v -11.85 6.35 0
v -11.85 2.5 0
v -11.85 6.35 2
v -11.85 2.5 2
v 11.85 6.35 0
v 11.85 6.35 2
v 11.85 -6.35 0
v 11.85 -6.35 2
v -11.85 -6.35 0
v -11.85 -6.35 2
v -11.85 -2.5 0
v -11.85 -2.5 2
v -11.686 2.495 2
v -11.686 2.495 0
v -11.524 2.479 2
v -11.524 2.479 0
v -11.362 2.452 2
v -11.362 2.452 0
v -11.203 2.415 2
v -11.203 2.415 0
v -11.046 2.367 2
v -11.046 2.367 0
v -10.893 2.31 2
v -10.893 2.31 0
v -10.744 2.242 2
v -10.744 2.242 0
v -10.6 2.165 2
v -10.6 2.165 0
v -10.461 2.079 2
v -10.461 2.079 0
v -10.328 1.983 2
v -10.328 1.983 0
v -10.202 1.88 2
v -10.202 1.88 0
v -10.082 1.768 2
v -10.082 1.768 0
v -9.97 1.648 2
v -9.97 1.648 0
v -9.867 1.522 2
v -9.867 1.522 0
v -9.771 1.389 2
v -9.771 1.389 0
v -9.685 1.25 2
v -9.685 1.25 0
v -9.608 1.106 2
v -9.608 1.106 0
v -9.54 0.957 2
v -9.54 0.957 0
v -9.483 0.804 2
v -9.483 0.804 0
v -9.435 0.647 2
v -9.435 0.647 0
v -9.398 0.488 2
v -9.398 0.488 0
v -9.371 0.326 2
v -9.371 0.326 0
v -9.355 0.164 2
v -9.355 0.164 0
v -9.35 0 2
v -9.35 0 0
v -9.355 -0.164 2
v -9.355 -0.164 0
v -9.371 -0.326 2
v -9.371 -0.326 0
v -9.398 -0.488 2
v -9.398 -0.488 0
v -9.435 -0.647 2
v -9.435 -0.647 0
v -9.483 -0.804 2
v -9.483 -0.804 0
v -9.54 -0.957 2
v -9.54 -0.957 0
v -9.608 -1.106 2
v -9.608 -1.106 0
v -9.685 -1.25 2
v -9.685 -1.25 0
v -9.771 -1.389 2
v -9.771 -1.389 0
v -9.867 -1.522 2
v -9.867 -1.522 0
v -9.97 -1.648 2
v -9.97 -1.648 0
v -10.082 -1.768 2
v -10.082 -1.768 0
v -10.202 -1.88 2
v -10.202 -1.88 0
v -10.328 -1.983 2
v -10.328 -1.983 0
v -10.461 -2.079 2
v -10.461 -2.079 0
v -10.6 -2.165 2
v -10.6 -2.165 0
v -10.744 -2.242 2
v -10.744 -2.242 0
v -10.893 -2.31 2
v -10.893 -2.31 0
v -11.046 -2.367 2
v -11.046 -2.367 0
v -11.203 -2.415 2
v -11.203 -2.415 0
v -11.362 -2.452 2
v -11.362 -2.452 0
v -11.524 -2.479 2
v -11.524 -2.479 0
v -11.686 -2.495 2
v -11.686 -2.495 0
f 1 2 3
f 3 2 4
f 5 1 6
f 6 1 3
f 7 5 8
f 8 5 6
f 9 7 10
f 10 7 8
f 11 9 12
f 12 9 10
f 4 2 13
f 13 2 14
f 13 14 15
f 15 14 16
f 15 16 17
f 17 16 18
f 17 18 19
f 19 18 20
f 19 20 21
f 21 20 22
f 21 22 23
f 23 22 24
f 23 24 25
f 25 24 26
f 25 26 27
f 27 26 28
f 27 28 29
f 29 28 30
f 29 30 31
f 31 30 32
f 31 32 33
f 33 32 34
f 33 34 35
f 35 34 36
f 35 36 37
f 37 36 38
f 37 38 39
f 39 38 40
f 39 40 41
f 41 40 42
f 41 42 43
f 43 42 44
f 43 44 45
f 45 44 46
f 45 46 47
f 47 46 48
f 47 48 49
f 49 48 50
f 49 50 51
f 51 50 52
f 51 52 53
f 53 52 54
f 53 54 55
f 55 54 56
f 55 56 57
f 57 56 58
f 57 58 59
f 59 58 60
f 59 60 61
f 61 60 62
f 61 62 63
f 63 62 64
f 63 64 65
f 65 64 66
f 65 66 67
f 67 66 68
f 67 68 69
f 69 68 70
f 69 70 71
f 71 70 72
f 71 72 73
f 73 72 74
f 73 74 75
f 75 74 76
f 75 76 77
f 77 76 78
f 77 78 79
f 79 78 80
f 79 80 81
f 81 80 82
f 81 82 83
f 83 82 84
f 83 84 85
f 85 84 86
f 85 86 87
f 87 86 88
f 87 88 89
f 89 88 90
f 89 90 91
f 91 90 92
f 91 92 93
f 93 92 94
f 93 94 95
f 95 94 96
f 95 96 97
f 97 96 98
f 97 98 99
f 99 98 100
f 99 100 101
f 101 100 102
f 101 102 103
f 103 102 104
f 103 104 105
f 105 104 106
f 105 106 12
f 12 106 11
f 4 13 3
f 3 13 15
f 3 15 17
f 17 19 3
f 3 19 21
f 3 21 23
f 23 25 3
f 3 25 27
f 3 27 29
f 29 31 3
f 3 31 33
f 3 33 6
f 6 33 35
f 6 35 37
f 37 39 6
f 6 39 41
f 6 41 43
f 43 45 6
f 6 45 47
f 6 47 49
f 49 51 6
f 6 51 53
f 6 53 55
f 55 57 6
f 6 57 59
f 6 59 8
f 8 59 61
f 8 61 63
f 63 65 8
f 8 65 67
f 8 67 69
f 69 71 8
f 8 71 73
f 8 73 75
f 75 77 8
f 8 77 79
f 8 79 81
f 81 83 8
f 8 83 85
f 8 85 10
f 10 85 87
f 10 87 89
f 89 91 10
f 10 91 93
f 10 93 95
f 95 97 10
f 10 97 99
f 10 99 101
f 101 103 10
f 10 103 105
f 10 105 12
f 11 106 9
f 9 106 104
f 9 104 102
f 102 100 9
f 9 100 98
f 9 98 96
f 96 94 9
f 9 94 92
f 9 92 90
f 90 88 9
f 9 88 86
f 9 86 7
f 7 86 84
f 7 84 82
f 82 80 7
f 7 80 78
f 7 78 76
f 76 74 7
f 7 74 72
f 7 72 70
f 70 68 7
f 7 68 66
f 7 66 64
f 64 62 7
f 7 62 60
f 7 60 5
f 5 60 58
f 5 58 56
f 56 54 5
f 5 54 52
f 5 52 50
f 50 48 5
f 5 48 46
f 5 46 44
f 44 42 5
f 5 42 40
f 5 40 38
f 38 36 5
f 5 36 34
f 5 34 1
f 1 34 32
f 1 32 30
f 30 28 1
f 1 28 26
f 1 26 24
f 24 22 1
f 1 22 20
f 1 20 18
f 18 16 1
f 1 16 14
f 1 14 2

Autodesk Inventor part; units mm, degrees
ref_plane "YZ Plane" through (0, 0, 0) normal (1, 0, 0) x (0, 1, 0)
ref_plane "XZ Plane" through (0, 0, 0) normal (0, 1, 0) x (-1, 0, 0)
ref_plane "XY Plane" through (0, 0, 0) normal (0, 0, 1) x (1, 0, 0)
sketch "Sketch1" plane through (0, 0, 0) normal (0, 0, 1) x (1, 0, 0)
  line L0 (-11.85, -6.35) -> (11.85, -6.35)
  line L1 (11.85, -6.35) -> (11.85, 6.35)
  line L2 (11.85, 6.35) -> (-11.85, 6.35)
  line L3 (-11.85, 6.35) -> (-11.85, 2.5)
  line L4 (-11.85, -6.35) -> (11.85, 6.35) construction
  line L5 (11.85, -6.35) -> (-11.85, 6.35) construction
  arc A0 (-11.85, -2.5) -> (-11.85, 2.5) centre (-11.85, 0) ccw
  line L6 (-11.85, 2.5) -> (-11.85, -2.5) construction
  line L7 (-11.85, -2.5) -> (-11.85, -6.35)
  line L8 (-11.85, 0) -> (0, 0) construction
  dimension "d0" = 12.7
  dimension "d1" = 23.7
  dimension "d2" = 2.5
extrude "Extrusion1" add sketch "Sketch1" along normal blind 2
properties part number "LED Backing"
